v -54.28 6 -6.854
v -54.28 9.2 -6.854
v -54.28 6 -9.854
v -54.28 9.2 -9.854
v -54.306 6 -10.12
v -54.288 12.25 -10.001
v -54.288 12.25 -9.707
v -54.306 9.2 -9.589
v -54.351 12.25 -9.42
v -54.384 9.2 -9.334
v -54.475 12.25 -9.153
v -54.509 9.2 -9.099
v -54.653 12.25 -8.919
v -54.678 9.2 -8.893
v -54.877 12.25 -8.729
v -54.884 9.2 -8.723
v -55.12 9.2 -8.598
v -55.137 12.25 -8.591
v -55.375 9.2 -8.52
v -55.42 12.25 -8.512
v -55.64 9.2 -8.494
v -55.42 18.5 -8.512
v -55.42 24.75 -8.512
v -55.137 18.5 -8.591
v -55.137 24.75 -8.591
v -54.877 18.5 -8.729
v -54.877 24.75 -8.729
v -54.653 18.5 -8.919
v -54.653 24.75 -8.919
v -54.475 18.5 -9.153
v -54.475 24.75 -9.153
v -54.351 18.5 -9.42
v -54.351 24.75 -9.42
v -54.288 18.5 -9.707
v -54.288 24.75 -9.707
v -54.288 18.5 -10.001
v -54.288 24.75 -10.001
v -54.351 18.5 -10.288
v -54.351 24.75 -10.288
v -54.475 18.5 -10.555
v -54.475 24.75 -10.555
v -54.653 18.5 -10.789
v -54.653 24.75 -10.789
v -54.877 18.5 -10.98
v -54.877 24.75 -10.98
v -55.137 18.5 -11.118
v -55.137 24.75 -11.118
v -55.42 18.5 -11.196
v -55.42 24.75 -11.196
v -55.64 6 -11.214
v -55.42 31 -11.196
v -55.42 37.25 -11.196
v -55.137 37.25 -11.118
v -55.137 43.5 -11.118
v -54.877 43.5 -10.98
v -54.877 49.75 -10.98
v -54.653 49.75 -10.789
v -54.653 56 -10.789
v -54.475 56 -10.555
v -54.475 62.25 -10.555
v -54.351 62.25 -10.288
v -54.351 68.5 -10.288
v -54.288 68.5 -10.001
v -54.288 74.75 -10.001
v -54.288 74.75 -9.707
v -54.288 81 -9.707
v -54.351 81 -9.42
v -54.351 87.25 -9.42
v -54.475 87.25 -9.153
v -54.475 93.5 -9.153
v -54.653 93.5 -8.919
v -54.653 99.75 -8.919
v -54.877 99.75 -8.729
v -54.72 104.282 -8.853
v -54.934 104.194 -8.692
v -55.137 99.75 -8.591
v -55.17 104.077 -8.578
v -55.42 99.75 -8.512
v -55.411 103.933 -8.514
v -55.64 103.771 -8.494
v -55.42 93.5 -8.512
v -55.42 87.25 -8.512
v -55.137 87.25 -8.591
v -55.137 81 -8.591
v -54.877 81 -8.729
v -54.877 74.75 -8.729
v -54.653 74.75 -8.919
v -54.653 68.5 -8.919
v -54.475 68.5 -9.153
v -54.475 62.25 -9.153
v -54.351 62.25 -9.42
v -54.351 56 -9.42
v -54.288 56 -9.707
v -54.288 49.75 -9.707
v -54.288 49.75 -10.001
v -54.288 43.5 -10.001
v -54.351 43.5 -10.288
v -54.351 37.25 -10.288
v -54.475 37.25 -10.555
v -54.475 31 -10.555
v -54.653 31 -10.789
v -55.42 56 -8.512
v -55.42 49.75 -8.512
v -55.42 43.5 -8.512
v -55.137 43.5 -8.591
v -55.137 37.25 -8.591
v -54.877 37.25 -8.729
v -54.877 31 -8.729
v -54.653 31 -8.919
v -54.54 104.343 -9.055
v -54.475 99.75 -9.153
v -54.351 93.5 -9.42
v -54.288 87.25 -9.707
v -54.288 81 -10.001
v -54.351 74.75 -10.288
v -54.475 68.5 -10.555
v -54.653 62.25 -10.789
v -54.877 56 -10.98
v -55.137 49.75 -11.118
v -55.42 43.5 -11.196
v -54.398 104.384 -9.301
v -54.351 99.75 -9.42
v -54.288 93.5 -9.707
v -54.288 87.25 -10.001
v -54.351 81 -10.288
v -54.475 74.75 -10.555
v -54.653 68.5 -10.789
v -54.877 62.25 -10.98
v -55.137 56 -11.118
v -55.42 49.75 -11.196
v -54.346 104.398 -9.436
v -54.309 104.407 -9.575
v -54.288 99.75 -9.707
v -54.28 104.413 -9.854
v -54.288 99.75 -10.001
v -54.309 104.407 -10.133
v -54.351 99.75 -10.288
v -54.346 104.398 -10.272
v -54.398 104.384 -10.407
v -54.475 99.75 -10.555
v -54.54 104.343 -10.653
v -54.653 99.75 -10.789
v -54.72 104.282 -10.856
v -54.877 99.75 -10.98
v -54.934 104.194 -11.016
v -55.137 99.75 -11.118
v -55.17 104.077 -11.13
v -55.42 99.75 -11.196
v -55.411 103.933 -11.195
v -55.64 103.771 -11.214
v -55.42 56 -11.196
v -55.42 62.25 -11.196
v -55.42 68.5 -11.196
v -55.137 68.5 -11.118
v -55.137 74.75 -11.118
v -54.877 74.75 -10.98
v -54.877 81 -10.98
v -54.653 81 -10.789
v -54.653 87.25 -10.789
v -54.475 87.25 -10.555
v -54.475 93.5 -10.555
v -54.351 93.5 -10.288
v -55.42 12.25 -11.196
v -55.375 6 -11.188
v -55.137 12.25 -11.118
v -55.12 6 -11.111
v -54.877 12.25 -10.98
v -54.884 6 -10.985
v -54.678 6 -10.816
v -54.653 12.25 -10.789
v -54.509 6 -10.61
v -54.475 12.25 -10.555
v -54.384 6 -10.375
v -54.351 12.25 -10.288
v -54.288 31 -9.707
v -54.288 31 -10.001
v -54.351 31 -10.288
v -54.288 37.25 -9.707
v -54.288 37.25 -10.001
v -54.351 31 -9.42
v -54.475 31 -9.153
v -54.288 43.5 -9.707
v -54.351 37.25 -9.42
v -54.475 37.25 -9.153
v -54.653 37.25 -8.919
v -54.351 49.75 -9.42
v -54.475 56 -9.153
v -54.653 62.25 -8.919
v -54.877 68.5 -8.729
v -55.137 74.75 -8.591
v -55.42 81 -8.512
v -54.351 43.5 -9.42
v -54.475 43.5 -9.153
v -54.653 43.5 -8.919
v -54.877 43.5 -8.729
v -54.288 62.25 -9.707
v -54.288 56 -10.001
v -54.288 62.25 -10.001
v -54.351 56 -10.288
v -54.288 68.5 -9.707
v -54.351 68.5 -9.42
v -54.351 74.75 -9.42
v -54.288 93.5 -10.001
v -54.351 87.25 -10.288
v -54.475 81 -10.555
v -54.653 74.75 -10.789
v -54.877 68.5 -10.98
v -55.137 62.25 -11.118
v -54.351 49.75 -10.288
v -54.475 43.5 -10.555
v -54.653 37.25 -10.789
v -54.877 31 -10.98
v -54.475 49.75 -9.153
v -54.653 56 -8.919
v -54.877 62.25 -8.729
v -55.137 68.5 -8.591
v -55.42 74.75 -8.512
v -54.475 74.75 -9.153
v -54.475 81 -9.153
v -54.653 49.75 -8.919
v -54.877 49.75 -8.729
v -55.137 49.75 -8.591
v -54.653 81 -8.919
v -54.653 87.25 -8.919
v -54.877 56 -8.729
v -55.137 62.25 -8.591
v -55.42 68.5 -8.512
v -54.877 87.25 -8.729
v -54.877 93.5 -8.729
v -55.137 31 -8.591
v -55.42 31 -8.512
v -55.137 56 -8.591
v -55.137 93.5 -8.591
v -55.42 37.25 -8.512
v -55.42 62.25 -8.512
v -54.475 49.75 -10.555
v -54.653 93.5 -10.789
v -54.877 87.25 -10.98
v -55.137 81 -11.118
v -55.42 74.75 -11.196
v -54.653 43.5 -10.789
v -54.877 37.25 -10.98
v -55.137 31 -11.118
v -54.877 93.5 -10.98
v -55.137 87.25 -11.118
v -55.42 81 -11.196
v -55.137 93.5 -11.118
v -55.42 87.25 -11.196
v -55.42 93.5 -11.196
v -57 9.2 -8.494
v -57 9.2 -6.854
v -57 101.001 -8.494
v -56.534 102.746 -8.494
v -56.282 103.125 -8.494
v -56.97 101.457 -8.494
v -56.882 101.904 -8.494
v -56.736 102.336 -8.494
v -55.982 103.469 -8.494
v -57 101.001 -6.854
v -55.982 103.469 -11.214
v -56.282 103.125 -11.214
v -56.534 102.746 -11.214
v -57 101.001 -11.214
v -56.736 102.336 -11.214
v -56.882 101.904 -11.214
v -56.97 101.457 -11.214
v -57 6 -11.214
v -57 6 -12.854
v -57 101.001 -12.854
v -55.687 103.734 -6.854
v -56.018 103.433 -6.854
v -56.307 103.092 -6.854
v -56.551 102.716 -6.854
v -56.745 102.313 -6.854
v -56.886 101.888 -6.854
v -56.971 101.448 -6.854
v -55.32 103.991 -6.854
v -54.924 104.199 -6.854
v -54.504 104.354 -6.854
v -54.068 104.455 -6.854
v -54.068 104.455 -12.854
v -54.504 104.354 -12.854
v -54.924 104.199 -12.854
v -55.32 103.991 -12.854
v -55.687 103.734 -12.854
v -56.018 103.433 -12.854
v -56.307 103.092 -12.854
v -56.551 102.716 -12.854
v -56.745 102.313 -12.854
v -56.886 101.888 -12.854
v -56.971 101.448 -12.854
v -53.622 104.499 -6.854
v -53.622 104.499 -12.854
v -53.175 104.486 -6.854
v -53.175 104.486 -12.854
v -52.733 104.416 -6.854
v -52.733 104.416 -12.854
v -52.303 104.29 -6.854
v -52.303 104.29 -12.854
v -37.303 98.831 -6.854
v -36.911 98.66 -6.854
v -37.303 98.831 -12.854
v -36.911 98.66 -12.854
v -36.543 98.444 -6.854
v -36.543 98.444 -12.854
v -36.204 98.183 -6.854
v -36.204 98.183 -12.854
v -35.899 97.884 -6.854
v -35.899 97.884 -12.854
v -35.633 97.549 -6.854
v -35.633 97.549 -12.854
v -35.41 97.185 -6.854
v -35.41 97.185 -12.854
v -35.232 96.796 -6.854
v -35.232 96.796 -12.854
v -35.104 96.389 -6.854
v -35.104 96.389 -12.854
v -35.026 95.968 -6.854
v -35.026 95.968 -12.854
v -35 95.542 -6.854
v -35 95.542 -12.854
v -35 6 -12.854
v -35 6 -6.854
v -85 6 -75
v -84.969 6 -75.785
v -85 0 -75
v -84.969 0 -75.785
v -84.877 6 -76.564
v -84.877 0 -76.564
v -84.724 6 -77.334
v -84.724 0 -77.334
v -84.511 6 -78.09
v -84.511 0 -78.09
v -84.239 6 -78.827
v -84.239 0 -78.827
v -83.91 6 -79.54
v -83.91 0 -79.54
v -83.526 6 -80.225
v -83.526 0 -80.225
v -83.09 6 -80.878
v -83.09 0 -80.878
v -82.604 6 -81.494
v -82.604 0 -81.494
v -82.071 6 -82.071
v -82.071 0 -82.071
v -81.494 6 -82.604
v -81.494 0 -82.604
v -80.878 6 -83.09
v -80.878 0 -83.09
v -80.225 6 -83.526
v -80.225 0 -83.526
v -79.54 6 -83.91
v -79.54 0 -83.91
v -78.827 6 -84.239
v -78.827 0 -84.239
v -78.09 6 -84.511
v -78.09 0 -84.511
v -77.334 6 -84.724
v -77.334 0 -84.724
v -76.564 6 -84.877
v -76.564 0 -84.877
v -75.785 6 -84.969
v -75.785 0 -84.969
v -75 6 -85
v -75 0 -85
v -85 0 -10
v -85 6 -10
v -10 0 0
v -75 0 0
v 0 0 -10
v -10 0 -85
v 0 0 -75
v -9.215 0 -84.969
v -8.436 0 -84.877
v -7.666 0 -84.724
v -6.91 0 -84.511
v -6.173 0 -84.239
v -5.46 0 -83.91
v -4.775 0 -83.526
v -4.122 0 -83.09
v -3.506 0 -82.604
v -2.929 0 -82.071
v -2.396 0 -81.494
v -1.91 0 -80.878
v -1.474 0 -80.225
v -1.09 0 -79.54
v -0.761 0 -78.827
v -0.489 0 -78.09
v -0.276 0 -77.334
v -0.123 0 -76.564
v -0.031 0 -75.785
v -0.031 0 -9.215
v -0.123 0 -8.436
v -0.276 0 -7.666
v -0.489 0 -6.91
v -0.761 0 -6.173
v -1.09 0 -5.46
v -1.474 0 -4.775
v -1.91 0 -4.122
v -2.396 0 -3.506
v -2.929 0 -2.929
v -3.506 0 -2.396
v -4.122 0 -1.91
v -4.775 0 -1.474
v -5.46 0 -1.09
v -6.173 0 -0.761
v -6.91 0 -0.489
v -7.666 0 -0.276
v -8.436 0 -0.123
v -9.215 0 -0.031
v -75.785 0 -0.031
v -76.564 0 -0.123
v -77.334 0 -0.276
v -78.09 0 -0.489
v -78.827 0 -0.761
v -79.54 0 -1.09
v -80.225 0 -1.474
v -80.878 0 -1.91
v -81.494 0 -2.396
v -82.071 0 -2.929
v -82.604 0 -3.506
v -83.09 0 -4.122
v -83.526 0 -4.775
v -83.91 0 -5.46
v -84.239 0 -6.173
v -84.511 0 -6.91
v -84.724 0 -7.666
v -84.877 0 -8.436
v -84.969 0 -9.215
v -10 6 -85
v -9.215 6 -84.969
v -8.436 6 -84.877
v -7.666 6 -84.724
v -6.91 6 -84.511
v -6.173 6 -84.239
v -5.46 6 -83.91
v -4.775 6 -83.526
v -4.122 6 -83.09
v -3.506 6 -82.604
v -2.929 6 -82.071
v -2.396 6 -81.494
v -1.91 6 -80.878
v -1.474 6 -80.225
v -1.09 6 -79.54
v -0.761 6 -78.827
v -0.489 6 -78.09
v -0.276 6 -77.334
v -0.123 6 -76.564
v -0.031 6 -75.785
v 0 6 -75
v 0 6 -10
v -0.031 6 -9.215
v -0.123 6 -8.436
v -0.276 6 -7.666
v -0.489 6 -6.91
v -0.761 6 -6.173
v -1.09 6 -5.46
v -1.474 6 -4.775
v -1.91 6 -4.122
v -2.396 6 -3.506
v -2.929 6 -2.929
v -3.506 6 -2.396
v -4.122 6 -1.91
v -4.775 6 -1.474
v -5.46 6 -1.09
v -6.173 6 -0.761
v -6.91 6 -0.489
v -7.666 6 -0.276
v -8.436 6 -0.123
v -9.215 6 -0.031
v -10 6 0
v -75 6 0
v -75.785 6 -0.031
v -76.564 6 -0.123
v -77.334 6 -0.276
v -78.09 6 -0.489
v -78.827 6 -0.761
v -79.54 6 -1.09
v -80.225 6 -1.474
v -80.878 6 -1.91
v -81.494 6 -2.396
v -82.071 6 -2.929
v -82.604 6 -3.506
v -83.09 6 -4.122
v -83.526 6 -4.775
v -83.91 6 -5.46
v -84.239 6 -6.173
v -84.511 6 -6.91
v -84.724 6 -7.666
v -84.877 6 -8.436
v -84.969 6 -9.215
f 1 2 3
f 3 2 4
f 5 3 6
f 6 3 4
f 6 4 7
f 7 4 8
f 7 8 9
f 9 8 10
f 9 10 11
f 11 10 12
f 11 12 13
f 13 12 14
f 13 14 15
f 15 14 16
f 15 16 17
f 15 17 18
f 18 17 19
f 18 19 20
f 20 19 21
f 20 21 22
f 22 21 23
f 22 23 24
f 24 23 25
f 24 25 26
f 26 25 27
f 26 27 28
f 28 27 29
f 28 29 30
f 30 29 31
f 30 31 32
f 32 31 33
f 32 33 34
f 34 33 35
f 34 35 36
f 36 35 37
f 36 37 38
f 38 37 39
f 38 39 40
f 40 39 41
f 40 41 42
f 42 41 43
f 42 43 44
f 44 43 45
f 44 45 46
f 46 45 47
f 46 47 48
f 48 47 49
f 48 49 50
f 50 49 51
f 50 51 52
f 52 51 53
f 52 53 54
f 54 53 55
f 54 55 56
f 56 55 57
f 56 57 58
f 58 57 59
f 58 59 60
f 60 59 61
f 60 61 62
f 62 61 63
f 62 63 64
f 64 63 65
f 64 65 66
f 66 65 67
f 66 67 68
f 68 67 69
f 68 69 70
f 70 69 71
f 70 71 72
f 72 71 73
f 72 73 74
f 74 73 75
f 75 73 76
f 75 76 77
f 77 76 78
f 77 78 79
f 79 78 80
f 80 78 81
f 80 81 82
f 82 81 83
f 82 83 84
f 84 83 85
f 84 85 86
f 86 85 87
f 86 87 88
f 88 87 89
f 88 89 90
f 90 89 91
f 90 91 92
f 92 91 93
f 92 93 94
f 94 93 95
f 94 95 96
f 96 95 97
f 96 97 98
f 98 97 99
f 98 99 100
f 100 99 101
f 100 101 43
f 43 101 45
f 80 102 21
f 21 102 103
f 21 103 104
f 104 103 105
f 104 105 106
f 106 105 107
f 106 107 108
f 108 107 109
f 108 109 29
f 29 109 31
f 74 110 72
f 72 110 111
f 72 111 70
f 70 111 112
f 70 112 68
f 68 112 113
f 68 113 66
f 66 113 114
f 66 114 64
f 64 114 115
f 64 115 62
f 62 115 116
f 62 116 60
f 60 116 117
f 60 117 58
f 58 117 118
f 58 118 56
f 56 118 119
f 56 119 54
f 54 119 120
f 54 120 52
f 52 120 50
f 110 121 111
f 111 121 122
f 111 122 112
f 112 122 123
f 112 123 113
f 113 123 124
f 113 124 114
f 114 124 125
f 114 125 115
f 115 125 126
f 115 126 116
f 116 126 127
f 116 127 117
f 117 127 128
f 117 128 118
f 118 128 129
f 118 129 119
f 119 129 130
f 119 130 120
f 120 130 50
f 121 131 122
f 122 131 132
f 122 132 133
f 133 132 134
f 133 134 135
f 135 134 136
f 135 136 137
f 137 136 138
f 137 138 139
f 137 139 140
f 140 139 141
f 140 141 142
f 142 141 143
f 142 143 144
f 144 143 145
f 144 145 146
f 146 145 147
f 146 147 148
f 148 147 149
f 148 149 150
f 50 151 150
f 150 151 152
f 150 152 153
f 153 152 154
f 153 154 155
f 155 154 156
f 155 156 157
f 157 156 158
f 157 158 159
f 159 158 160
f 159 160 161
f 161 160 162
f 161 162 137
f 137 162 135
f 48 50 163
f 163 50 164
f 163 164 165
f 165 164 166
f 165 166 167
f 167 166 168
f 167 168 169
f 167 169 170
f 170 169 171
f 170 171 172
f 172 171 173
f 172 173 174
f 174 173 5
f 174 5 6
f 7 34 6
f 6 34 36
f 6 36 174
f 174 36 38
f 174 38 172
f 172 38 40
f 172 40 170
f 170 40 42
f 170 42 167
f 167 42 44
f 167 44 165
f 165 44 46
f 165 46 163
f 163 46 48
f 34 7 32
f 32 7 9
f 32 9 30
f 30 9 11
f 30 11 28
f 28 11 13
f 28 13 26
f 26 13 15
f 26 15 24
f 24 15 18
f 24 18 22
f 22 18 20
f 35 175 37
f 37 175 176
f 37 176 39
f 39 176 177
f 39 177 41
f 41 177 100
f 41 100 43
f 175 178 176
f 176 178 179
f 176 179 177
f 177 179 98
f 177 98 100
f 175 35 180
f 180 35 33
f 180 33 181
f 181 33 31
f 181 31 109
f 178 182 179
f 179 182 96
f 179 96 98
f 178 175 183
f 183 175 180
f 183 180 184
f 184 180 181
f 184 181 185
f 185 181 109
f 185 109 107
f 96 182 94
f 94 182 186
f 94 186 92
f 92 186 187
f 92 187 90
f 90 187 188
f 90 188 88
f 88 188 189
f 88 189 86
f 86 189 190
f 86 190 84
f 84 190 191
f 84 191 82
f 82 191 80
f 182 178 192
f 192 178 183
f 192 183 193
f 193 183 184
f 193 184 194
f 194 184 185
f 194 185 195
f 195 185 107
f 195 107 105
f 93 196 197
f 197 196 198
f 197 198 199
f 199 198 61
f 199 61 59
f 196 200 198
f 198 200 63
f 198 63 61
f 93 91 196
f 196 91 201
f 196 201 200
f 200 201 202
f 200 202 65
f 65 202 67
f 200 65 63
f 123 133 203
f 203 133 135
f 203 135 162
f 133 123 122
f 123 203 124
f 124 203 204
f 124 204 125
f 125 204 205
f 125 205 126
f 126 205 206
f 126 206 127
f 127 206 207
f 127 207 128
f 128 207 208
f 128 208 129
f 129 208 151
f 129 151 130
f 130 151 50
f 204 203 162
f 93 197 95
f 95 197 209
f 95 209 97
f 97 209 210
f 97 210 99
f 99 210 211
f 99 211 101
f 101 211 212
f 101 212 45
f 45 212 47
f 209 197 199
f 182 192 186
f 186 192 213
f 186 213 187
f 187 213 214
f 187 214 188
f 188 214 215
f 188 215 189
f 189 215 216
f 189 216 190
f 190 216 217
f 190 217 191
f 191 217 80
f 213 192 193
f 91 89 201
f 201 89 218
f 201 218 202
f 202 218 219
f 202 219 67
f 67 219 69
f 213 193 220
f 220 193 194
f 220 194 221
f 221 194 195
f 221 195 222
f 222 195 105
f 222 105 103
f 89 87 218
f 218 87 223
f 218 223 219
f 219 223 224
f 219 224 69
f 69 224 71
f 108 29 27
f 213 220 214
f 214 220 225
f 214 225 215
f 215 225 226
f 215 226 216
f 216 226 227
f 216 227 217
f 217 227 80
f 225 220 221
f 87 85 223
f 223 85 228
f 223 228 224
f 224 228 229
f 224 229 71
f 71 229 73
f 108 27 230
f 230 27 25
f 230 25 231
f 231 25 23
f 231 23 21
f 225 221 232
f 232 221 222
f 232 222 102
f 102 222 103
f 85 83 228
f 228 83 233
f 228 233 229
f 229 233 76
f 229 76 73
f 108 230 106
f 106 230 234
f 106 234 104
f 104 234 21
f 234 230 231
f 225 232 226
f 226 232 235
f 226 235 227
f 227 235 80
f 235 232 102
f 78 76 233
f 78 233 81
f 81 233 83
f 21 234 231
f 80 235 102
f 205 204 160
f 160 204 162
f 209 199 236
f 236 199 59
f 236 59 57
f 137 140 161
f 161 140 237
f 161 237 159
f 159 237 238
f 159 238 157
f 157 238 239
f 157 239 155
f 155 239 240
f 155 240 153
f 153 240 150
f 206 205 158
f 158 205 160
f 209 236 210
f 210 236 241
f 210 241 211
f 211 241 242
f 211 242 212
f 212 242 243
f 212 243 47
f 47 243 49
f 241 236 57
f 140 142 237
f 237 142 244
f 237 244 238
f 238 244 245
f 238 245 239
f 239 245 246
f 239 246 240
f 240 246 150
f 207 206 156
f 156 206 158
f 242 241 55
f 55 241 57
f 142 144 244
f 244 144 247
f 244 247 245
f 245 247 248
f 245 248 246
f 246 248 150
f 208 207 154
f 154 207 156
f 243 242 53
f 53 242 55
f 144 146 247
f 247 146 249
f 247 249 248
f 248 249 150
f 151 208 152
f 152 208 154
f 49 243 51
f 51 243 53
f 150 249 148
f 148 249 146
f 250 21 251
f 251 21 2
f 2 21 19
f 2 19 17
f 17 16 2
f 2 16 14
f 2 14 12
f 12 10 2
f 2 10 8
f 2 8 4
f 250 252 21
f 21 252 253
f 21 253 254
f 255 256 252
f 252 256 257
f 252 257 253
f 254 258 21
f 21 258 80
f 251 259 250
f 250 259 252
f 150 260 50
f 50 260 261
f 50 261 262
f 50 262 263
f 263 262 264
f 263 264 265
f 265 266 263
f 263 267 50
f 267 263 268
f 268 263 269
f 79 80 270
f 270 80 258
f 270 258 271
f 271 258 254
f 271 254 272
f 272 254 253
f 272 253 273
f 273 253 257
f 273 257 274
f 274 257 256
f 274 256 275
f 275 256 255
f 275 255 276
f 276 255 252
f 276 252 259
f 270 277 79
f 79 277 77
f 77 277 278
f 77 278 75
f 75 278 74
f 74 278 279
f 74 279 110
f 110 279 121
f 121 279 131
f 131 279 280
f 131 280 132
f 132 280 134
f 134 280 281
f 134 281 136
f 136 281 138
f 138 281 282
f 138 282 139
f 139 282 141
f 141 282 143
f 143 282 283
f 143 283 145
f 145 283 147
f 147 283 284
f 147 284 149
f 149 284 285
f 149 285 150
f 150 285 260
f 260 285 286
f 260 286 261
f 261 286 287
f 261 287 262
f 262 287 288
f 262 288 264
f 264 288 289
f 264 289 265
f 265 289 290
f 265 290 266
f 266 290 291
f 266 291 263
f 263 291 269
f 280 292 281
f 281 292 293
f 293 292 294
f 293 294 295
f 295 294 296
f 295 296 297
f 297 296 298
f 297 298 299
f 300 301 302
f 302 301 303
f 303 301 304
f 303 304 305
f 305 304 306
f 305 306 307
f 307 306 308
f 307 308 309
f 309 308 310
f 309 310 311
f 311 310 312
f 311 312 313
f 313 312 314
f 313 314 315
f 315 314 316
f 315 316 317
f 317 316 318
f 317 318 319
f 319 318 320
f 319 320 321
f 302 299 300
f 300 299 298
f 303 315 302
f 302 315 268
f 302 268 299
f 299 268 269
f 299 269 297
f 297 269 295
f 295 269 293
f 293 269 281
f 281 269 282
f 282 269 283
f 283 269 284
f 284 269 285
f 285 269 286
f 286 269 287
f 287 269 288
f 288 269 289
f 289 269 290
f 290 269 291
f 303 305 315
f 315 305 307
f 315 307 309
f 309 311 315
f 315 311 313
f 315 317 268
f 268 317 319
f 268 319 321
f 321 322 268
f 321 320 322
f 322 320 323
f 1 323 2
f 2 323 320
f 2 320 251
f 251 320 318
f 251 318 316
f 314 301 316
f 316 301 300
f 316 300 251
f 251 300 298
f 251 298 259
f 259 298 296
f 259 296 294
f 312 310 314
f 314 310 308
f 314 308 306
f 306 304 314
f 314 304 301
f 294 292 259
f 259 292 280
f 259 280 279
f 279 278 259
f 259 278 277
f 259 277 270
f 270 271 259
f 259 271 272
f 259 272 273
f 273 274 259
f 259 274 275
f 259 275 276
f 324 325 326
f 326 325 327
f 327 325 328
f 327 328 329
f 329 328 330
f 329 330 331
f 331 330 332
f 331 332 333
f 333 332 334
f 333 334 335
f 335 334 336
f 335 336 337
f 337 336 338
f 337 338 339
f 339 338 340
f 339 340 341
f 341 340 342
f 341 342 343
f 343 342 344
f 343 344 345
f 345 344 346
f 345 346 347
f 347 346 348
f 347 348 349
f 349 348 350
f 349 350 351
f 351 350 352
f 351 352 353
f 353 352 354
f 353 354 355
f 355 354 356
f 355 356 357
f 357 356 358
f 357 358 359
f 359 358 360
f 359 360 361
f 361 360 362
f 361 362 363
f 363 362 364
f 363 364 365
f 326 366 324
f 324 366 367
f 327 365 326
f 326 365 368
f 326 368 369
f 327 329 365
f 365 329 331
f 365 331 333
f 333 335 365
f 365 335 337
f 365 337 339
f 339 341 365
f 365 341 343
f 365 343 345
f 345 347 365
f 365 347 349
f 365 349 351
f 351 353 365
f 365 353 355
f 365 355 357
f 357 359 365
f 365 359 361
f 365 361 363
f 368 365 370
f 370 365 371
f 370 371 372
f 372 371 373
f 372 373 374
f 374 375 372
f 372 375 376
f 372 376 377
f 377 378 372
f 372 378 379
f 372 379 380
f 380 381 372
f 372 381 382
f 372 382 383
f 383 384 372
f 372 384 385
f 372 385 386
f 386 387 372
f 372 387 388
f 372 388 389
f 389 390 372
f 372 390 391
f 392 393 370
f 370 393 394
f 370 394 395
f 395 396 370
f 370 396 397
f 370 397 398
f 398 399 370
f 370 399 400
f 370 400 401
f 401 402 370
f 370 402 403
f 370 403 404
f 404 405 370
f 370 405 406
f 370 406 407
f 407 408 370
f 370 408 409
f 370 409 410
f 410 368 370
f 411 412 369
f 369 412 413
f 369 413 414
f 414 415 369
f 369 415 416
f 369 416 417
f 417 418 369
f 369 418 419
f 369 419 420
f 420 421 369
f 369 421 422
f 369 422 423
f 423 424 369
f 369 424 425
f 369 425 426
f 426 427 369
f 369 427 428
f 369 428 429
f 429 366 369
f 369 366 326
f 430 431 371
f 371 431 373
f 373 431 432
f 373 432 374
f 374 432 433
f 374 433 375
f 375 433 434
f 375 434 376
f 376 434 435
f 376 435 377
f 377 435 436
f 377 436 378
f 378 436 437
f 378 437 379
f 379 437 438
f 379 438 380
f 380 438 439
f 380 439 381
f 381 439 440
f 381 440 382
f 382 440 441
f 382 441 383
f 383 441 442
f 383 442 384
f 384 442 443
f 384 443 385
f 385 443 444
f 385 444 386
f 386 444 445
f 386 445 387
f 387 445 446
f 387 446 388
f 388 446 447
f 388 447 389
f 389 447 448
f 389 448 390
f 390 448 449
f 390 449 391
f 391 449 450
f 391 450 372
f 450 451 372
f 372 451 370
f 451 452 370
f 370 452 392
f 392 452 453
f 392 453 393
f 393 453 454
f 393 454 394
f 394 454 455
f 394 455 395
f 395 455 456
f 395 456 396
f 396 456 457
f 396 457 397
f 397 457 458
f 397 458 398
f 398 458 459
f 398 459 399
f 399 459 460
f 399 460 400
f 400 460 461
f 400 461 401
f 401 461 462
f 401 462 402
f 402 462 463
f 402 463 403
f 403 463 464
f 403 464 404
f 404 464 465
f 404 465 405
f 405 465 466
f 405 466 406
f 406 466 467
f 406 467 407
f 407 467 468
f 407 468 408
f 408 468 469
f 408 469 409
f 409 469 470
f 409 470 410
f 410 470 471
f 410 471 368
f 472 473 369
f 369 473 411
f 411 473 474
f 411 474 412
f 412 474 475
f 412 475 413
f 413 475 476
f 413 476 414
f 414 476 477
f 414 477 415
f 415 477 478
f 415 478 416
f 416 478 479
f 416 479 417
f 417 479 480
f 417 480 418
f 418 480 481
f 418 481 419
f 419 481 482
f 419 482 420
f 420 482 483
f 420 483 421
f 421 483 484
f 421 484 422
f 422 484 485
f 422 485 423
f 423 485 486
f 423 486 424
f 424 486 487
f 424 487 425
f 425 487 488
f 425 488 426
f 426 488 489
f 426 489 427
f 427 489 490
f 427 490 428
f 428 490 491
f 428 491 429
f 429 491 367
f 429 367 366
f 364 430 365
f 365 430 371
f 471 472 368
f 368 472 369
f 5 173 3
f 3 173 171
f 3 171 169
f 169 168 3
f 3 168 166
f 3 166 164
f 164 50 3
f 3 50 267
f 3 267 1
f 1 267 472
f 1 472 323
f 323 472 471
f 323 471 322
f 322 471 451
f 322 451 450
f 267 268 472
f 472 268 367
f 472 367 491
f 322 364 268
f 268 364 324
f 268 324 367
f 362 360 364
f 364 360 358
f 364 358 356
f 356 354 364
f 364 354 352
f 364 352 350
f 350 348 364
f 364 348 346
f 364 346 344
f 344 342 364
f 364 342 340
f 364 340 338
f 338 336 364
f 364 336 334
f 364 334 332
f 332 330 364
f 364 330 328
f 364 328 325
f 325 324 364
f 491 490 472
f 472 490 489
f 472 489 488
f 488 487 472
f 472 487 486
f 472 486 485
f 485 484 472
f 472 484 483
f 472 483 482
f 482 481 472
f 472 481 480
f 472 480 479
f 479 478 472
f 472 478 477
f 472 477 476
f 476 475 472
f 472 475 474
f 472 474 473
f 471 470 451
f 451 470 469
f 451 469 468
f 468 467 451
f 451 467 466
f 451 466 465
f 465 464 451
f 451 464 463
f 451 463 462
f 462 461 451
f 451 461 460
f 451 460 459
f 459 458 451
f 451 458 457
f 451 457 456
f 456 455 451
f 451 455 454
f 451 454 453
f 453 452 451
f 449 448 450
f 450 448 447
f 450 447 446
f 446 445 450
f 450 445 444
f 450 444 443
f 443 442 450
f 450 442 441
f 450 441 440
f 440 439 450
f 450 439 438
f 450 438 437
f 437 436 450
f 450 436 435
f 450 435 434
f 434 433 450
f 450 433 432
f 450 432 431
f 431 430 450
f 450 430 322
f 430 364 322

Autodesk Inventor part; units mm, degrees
ref_plane "YZ Plane" through (0, 0, 0) normal (1, 0, 0) x (0, 1, 0)
ref_plane "XZ Plane" through (0, 0, 0) normal (0, 1, 0) x (-1, 0, 0)
ref_plane "XY Plane" through (0, 0, 0) normal (0, 0, 1) x (1, 0, 0)
sketch "Sketch1" plane through (0, 0, 0) normal (0, 1, 0) x (-1, 0, 0)
  line L0 (0, 0) -> (85, 0)
  line L1 (85, 0) -> (85, -85)
  line L2 (85, -85) -> (0, -85)
  line L3 (0, -85) -> (0, 0)
  dimension "d0" = 85
  dimension "d1" = 85
extrude "Extrusion1" add sketch "Sketch1" along normal blind 6
fillet "Fillet1" radius 10 4 edges at (-85, 3, 0) (0, 3, 0) (0, 3, -85) (-85, 3, -85)
sketch "Sketch2" plane through (0, 6, 0) normal (0, 1, 0) x (1, 0, 0)
  line L0 (-75, 0) -> (-10, 0) projected
  line L1 (-57, 6.8542) -> (-35, 6.8542)
  line L2 (-35, 6.8542) -> (-35, 11.8542)
  line L3 (-35, 11.8542) -> (-35, 12.8542)
  line L4 (-35, 12.8542) -> (-57, 12.8542)
  line L5 (-57, 12.8542) -> (-57, 6.8542)
  point P0 (0, 0)
extrude "Extrusion2" add sketch "Sketch2" along normal blind 100
sketch "Sketch3" plane through (-57, 6, -6.8542) normal (0, 0, 1) x (1, 0, 0)
  line L0 (22, 100) -> (0, 100) projected
  line L1 (0, 100) -> (22, 100)
  line L2 (22, 100) -> (22, 92.8)
  line L3 (22, 0) -> (22, 100) projected
  line L4 (0, 0) -> (0, 100) projected
  line L5 (0, 100) -> (22, 91.9927)
  line L6 (0, 100) -> (23.4119, 100) construction
  line L7 (22, 91.9927) -> (22, 100)
  point P0 (57, -6)
  dimension "d12" = 7.2
  dimension "d13" = 20
extrude "Extrusion3" cut sketch "Sketch3" against normal blind 10
fillet "Fillet2" radius 3.5 2 edges at (-57, 106, -9.8542) (-35, 97.9927, -9.8542)
sketch "Sketch4" plane through (0, 6, 0) normal (0, 1, 0) x (1, 0, 0)
  point P0 (0, 0)
sketch "Sketch5" plane through (0, 6, 0) normal (0, 1, 0) x (1, 0, 0)
  line L0 (-57, 6.8542) -> (-57, 12.8542) projected
  line L1 (-57, 9.8542) -> (-55.64, 9.8542)
  circle A0 centre (-55.64, 9.8542) radius 1.36
  point P0 (0, 0)
  dimension "d19" = 2.72
extrude "Extrusion4" add sketch "Sketch5" along normal blind 100
sketch "Sketch6" plane through (-55.64, 106, -9.8542) normal (0, 1, 0) x (1, 0, 0)
  circle A0 centre (0, 0) radius 1.36
  point P0 (55.64, -9.8542)
extrude "Extrusion5" cut sketch "Sketch6" against normal blind 100
sketch "Sketch7" plane through (-57, 6, -6.8542) normal (-1, 0, 0) x (0, 0, 1)
  line L0 (-4.36, 97.771) -> (-4.36, 0) projected
  line L1 (-4.36, 97.771) -> (-1.64, 97.771)
  line L2 (-1.64, 97.771) -> (-1.64, 0) projected
  line L3 (-4.36, 97.771) -> (-4.36, 0)
  line L4 (-4.36, 0) -> (-1.64, 0)
  line L5 (-3.1458, 0) -> (6.8542, 0) projected
  line L6 (-1.64, 0) -> (-1.64, 97.771)
  line L7 (0, 98.5015) -> (0, 95.0015) projected
  point P0 (6.8542, -6)
  point P1 (0, 98.2904)
extrude "Extrusion6" cut sketch "Sketch7" against normal blind 1.36
sketch "Sketch8" plane through (-57, 6, -6.8542) normal (0, 0, 1) x (1, 0, 0)
  point P0 (57, -6)
sketch "Sketch9" plane through (-57, 6, -6.8542) normal (0, 0, 1) x (1, 0, 0)
  line L0 (0, 0) -> (0, 95.0015) projected
  line L1 (1.36, 0) -> (1.36, 97.771) projected
  line L2 (0, 0) -> (1.36, 0)
  line L3 (1.36, 0) -> (1.36, 3.2)
  line L4 (1.36, 3.2) -> (0, 3.2)
  line L5 (0, 3.2) -> (0, 0)
  line L6 (1.36, 0) -> (0, 0)
  line L7 (47, 0) -> (-18, 0) projected
  point P0 (57, -6)
  dimension "d26" = 3.2
extrude "Extrusion7" cut sketch "Sketch9" against normal blind 2
sketch "Sketch10" plane through (-35, 6, -6.8542) normal (0, 0, 1) x (1, 0, 0)
  line L0 (-20.64, 3.2) -> (-22, 3.2) projected
  line L1 (-20.64, 3.2) -> (-19.28, 3.2)
  line L2 (-19.28, 3.2) -> (-19.28, 0)
  line L3 (-19.28, 98.4135) -> (-19.28, 0) projected
  line L4 (25, 0) -> (-40, 0) projected
  line L5 (-20.64, 0) -> (-19.28, 0)
  line L6 (-20.64, 0) -> (-20.64, 97.771) projected
  line L7 (-20.64, 0) -> (-20.64, 3.2)
  point P0 (35, -6)
  dimension "d29" = 1.36
extrude "Extrusion8" cut sketch "Sketch10" against normal blind 3
properties part number "NewBase"
